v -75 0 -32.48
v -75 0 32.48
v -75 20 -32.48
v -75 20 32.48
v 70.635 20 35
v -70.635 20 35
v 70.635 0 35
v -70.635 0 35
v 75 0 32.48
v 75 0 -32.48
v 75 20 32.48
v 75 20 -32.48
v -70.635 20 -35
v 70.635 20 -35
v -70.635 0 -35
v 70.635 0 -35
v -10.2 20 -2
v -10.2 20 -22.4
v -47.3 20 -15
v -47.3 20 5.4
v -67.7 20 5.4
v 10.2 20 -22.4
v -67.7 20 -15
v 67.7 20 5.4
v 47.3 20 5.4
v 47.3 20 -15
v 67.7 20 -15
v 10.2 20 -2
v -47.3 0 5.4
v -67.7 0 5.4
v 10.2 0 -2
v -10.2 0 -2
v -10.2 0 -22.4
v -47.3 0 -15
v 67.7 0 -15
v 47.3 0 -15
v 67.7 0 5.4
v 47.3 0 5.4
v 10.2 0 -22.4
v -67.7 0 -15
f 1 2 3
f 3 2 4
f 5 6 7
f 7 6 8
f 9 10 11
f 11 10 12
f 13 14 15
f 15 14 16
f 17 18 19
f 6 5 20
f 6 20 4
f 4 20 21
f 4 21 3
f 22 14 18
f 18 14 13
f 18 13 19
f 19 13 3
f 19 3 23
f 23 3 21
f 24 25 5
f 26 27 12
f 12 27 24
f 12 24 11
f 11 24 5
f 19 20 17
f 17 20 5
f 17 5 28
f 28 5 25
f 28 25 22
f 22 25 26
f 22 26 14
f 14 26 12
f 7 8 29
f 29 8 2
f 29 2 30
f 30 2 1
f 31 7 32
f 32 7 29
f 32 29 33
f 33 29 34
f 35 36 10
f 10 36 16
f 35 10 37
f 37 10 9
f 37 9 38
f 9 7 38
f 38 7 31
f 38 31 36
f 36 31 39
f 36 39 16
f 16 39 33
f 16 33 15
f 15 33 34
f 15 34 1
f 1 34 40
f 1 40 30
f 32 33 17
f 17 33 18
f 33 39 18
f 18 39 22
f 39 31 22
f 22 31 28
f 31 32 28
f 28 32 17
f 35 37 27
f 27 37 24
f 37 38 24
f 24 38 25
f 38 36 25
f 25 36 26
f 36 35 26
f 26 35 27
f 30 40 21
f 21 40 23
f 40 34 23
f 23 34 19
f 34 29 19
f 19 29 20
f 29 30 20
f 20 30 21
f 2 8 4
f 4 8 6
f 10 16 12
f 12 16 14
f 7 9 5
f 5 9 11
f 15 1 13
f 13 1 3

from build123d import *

# Parameters (mm, degrees)
SKETCH2_W      = 150
SKETCH2_H      = 70
EXTRUDE1_DEPTH = 20
SKETCH3_W      = 20.4
SKETCH3_H      = 20.4
EXTRUDE2_DEPTH = 20
SKETCH6_W      = 20.4
SKETCH6_H      = 20.4
EXTRUDE5_DEPTH = 20
EXTRUDE6_DEPTH = 20


with BuildPart() as part:
    # Sketch2 → Extrude1 (new body)
    with BuildSketch(Plane(origin=(0, 0, 0), x_dir=(1, 0, 0), z_dir=(0, 1, 0))):
        Rectangle(SKETCH2_W, SKETCH2_H)
    extrude(amount=EXTRUDE1_DEPTH)

    # Sketch3 → Extrude2 (cut)
    with BuildSketch(Plane(origin=(0, 20, 0), x_dir=(1, 0, 0), z_dir=(0, 1, 0))):
        with Locations((0, 12.2)):
            Rectangle(SKETCH3_W, SKETCH3_H)
    extrude(amount=-EXTRUDE2_DEPTH, mode=Mode.SUBTRACT)

    # Sketch6 → Extrude5 (cut)
    with BuildSketch(Plane(origin=(0, 20, 0), x_dir=(1, 0, 0), z_dir=(0, 1, 0))):
        with Locations((-57.5, 4.8)):
            Rectangle(SKETCH6_W, SKETCH6_H)
        with Locations((57.5, 4.8)):
            Rectangle(SKETCH6_W, SKETCH6_H)
    extrude(amount=-EXTRUDE5_DEPTH, mode=Mode.SUBTRACT)

    # Sketch7 → Extrude6 (cut)
    with BuildSketch(Plane(origin=(0, 20, 0), x_dir=(1, 0, 0), z_dir=(0, 1, 0))):
        Polygon((-70.635231965, -35), (-75, -32.48), (-75, -35), align=None)
        Polygon((-75, 35), (-70.635231965, 35), (-75, 32.48), align=None)
        Polygon((75, -35), (70.635231965, -35), (75, -32.48), align=None)
        Polygon((70.635231965, 35), (75, 32.48), (75, 35), align=None)
    extrude(amount=-EXTRUDE6_DEPTH, mode=Mode.SUBTRACT)


solid = part.part
